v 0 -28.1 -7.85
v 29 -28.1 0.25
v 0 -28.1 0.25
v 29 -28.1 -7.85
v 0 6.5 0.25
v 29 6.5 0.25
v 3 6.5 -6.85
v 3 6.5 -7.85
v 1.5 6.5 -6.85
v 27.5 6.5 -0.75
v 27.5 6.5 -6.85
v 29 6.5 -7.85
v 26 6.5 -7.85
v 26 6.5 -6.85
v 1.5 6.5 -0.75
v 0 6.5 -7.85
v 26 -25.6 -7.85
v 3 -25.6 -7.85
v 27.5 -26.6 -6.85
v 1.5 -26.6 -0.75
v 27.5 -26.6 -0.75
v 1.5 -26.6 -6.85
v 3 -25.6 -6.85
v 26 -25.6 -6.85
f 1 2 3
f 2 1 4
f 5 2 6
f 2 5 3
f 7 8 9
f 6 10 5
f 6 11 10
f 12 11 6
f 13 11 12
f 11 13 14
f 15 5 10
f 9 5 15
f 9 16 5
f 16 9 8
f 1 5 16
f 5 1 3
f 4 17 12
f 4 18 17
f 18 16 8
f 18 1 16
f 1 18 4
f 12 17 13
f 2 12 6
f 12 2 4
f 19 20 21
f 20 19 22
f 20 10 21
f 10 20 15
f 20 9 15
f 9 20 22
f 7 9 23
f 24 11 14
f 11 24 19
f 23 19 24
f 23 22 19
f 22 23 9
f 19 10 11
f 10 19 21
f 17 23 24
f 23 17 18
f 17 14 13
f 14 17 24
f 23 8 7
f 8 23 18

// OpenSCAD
module CI() {
    color("DarkGreen") cube([36,25,1.7],center=true);
    color("DarkGreen") translate([-2.6/2,0,0]) cube([38.6,6.8,1.7],center=true);
    color("Silver") translate([-8,0,4.4/2+1.7/2]) cube([15.3,21.3,4.4],center=true);
    color("DimGray") translate([8,0,5.0/2+1.7/2]) cube([6,6,5],center=true);
}

module baleine() {
    intersection() {
        translate([0,0,5]) scale([0.15,0.15,1]) scale([2,2,1]) // minkowski() {
            surface(file="contour_2.png",center=true,invert=true);
//          sphere(r=0.5,center=true,$fn=8);
//        }
        translate([0,0,0]) cube([100,80,1.5],center=true);
    }
}

baleine();

translate([14.5,-12,-6]) rotate([0,0,90]) {
//    CI();
    translate([-1.3+2.5,0,2.2]) difference() {
// Bloc externe
        cube([38.6+1-5,25+4,6.1+2],center=true);
// Bloc interne
        translate([2,0,0])  cube([38.6+2-5,25+1,6.1],center=true);
// Ouverture supérieure
       translate([3,0,-5])  cube([38.6+2-5,25-2,6.1],center=true);
    }
}
